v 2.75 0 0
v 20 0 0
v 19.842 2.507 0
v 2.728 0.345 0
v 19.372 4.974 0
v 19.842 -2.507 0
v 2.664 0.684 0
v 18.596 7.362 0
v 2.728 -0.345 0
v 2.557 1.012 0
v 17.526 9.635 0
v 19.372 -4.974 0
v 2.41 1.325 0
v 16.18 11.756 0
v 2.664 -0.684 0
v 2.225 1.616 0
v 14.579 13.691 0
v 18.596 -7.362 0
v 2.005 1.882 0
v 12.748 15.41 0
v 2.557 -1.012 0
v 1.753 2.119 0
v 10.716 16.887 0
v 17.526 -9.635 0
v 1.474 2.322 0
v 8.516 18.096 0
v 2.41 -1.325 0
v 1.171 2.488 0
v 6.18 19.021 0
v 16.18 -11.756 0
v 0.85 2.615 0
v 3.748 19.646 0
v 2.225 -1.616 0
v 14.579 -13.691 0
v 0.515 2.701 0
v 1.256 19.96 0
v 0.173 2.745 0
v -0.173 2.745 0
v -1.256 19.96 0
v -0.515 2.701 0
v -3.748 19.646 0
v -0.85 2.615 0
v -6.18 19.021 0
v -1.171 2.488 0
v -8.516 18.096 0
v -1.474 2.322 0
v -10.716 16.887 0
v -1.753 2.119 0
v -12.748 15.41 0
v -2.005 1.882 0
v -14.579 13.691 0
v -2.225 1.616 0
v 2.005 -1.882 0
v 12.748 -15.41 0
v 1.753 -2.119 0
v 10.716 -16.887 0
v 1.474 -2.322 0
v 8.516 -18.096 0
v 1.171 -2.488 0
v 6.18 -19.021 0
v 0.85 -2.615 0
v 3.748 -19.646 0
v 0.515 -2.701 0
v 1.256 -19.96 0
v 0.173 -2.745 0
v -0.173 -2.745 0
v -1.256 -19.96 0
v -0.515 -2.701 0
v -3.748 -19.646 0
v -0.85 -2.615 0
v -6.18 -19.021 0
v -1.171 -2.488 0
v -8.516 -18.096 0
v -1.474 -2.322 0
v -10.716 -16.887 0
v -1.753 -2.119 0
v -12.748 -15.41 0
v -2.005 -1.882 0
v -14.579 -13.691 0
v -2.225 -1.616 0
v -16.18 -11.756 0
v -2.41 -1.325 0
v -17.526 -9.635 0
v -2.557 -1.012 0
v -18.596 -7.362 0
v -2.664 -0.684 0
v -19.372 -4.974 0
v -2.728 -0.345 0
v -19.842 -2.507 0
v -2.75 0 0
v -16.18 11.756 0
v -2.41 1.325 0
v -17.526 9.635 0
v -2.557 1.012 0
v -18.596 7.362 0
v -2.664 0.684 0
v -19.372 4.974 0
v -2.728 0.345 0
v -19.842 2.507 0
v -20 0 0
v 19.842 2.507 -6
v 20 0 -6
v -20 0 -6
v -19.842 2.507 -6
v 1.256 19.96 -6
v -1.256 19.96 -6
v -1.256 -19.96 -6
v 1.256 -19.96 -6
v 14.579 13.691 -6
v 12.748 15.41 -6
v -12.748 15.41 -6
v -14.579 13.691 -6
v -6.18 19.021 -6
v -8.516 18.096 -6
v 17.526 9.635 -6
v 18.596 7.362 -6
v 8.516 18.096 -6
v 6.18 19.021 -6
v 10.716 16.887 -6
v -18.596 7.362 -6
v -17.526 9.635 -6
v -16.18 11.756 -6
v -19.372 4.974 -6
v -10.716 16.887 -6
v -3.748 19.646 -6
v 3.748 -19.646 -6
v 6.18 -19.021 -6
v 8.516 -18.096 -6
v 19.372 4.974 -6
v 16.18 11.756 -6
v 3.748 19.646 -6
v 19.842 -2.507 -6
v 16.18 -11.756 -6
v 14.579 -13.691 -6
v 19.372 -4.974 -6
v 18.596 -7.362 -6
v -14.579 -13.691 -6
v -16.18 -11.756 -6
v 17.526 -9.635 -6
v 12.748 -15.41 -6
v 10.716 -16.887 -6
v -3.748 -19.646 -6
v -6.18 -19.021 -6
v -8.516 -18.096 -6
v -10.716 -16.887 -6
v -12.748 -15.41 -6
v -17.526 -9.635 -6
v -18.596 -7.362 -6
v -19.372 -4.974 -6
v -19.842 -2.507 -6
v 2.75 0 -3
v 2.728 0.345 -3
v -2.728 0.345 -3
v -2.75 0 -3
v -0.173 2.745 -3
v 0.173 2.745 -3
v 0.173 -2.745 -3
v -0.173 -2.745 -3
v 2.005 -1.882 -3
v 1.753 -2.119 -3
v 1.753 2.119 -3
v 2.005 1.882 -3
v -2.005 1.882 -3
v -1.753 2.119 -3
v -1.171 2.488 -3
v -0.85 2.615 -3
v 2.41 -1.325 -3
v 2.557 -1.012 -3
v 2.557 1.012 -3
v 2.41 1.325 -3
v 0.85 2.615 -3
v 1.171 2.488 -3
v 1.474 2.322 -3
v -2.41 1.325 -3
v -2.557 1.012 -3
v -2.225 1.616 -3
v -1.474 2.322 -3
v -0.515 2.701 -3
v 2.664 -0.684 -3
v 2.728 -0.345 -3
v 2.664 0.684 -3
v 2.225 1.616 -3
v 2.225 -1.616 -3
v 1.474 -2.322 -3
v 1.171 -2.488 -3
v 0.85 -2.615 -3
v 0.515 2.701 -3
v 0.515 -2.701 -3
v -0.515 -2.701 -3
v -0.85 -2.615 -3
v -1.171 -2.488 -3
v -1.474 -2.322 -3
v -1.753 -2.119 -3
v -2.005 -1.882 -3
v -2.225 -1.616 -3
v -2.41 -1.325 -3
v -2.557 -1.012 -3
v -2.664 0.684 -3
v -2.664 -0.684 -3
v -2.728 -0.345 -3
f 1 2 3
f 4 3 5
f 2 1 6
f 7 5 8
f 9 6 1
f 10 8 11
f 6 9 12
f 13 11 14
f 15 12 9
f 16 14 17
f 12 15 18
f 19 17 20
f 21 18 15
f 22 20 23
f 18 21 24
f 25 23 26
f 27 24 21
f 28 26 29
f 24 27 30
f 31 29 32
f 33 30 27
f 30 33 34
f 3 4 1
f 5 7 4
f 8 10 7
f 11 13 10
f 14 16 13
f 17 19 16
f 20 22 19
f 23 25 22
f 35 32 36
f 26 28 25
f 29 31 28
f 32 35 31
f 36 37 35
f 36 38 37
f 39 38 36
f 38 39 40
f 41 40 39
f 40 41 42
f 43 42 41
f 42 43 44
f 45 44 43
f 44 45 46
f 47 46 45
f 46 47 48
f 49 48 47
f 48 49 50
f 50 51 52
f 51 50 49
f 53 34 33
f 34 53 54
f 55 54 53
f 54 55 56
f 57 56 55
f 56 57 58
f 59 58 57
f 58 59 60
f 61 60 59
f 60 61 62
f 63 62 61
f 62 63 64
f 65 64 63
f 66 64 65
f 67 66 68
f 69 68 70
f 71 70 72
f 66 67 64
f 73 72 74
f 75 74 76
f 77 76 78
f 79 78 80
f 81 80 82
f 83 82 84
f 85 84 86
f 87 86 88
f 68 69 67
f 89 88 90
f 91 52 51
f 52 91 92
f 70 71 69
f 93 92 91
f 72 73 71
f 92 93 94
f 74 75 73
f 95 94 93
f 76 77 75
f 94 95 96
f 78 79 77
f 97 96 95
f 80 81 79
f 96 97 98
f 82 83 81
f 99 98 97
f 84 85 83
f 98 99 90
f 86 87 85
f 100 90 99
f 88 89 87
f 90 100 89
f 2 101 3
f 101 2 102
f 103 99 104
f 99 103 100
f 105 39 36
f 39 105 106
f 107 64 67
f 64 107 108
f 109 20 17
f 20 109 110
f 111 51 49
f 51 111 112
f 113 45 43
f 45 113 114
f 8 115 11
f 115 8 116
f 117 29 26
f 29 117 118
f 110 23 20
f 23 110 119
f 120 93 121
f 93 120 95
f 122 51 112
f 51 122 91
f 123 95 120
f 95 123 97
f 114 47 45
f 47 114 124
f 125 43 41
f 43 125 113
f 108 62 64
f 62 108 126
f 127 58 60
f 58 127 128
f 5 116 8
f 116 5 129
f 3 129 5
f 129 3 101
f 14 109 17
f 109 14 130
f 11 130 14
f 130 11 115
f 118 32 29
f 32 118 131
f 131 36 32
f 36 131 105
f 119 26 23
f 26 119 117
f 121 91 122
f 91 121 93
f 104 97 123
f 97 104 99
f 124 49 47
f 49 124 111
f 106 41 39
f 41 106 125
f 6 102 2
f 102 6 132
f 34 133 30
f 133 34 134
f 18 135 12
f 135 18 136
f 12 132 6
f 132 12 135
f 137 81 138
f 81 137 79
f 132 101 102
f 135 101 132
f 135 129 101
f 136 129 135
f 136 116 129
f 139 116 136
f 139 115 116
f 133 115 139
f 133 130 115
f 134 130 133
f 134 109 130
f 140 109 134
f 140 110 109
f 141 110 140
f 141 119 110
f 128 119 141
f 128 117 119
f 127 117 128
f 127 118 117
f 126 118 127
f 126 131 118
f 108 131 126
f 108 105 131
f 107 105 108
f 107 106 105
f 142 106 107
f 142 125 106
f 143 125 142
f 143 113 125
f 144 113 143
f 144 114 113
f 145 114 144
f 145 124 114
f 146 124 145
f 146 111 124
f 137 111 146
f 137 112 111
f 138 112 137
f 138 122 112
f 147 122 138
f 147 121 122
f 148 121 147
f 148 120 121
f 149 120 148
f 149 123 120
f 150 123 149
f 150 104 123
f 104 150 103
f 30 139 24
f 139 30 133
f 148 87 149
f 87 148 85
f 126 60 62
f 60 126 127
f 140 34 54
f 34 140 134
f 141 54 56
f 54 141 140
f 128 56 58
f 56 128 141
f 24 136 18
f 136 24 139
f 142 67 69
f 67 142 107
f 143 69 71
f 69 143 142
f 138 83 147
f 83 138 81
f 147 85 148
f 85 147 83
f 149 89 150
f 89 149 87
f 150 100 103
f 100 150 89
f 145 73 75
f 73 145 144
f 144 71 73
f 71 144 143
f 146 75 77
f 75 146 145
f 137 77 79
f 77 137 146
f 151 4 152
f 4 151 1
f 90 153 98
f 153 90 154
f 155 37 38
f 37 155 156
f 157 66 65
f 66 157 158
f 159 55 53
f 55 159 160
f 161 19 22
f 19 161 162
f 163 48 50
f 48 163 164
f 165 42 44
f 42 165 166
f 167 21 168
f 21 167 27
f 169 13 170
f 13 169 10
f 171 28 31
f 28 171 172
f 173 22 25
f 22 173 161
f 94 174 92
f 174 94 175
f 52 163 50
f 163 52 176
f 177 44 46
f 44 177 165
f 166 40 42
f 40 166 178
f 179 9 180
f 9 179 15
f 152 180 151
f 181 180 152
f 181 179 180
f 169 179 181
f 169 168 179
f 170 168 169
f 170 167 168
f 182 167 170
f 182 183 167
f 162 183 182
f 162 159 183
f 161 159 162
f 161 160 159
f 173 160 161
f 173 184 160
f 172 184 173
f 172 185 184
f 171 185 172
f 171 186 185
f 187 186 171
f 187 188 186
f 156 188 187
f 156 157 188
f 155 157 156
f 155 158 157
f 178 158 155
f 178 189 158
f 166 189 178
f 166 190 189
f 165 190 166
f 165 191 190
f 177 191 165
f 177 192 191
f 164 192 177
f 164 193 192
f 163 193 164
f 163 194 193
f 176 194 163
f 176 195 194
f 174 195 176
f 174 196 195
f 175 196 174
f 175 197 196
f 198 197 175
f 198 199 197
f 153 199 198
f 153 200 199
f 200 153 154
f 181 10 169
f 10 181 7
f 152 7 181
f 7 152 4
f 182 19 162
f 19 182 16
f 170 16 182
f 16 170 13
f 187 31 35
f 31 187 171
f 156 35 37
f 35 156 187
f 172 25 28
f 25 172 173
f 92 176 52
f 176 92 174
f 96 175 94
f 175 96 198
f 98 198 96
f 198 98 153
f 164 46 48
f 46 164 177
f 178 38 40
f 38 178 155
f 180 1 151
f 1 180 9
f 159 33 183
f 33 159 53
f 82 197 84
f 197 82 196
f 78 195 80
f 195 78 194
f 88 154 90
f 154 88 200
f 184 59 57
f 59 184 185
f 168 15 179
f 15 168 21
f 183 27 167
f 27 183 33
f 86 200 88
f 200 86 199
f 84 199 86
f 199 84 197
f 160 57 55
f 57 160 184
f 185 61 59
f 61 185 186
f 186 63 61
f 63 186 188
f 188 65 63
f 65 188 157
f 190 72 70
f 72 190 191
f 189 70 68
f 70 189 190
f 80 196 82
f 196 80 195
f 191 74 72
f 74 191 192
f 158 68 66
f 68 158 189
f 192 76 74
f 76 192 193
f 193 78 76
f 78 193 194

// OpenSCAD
$fn = 50;


difference() {
	union() {
		translate(v = [0, 0, -3.0000000000]) {
			cylinder(h = 3, r = 10.0000000000);
		}
		translate(v = [0, 0, -6.0000000000]) {
			cylinder(h = 6, r = 20.0000000000);
		}
	}
	union() {
		#translate(v = [0, 0, -3]) {
			cylinder(h = 3, r = 2.7500000000);
		}
	}
}
